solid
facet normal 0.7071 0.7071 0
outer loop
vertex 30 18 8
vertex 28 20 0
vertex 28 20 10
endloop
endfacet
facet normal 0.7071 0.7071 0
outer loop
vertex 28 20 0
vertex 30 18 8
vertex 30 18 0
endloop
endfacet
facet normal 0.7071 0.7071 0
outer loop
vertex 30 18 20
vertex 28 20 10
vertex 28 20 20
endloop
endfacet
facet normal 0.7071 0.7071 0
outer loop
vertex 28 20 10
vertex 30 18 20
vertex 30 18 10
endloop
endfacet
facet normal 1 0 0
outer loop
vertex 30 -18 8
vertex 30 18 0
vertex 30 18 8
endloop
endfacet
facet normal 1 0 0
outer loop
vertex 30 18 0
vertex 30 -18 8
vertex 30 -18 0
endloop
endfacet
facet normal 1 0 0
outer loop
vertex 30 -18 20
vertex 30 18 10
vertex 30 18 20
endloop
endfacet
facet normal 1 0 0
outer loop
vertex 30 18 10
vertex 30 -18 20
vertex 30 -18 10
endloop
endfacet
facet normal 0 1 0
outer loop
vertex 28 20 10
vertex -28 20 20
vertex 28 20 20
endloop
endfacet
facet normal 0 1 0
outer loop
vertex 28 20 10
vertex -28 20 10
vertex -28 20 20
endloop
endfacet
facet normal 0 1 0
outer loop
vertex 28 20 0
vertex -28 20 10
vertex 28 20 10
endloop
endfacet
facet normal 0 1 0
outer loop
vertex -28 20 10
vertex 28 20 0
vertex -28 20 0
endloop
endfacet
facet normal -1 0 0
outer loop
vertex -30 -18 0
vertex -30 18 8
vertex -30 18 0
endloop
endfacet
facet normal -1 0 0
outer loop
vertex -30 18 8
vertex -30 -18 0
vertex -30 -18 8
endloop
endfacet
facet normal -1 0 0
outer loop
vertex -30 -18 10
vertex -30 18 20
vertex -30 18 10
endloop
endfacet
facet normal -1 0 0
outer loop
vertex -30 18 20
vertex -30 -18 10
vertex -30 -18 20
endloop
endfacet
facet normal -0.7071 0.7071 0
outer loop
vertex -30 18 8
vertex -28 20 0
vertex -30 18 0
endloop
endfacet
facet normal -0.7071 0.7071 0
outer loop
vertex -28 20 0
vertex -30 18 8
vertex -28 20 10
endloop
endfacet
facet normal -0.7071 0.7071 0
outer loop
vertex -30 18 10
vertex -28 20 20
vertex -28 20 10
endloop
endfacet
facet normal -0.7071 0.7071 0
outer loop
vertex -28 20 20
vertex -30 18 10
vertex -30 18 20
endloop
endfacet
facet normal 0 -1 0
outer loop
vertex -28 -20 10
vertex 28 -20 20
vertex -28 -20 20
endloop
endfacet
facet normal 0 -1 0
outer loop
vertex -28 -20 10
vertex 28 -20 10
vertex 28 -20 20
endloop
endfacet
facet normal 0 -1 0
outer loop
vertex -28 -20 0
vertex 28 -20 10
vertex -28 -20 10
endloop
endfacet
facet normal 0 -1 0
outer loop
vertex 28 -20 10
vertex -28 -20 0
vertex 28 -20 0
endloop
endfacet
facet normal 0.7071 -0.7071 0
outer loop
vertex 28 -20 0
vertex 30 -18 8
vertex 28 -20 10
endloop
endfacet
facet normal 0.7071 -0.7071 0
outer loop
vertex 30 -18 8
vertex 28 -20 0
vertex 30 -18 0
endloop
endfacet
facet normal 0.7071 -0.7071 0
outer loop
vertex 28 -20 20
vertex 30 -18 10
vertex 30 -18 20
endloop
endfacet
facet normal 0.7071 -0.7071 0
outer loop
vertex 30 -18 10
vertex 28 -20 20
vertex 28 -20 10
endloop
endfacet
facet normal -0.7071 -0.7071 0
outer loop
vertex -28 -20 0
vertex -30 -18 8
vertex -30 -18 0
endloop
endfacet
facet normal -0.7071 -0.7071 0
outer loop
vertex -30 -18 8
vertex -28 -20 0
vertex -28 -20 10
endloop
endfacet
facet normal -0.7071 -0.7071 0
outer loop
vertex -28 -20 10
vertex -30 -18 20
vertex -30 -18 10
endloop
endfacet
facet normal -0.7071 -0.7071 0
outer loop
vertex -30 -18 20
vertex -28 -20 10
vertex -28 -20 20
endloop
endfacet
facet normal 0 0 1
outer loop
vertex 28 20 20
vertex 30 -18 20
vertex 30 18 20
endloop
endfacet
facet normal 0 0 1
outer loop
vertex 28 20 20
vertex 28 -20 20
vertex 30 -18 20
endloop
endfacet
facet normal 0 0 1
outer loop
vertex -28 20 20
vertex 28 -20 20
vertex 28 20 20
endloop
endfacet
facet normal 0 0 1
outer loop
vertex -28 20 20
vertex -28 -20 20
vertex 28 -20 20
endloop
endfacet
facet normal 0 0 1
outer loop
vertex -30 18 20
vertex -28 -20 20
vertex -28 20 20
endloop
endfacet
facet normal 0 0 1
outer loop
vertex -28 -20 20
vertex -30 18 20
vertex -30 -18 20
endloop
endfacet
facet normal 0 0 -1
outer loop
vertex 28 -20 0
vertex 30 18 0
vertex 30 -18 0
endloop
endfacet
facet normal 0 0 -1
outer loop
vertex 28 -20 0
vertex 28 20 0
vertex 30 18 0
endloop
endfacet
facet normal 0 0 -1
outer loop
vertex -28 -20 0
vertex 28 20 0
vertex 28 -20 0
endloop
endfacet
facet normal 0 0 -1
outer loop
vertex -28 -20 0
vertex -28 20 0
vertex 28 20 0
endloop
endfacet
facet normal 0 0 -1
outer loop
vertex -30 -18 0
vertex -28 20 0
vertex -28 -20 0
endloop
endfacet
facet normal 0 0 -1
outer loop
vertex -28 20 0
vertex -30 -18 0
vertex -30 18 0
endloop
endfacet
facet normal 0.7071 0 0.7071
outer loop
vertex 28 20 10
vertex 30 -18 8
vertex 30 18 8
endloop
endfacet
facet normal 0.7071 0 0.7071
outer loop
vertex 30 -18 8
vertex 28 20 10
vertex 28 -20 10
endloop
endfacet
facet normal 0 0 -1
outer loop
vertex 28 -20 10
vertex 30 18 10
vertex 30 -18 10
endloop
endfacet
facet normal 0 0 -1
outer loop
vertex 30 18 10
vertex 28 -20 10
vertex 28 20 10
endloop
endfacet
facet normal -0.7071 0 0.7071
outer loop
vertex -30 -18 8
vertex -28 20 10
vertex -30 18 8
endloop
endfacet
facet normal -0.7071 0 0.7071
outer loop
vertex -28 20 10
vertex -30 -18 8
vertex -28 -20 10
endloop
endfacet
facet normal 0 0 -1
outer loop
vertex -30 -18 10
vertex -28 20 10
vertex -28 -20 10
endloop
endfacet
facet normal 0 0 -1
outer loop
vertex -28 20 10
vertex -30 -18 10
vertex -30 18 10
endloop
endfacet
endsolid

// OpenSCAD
/* doodle-meta {"version":1,"parameters":{"width":{"label":"Overall width","description":"Changes the body width along X","unit":"mm","feature":"body_width"},"depth":{"label":"Overall depth","description":"Changes the body depth along Y","unit":"mm","feature":"body_depth"},"height":{"label":"Overall height","description":"Changes the body height along Z","unit":"mm","feature":"body_height"},"chamfer_size":{"label":"Chamfer size","description":"Size of the 45-degree chamfer on all edges","unit":"mm","feature":"chamfer"}},"features":{"body_width":{"kind":"dimension","axis":"x","label":"Overall width"},"body_depth":{"kind":"dimension","axis":"y","label":"Overall depth"},"body_height":{"kind":"dimension","axis":"z","label":"Overall height"},"chamfer":{"kind":"region","label":"Edge Chamfers","min":[0,0,0],"max":[{"parameter":"width","scale":1,"offset":0},{"parameter":"depth","scale":1,"offset":0},{"parameter":"height","scale":1,"offset":0}]}}} */

// Parameters
width = 60.0;
depth = 40.0;
height = 20.0;
chamfer_size = 2.0;

// Derived constants
eps = 0.01;

// Module for a single chamfer cutter (a triangular prism)
// The prism is oriented such that its triangular cross-section is in the XY plane
// and it extends along Z.
// It cuts the corner at (x_sign * width/2, y_sign * depth/2).
module chamfer_cutter(x_sign, y_sign) {
    // Define the triangle vertices in the local XY plane relative to the corner
    // The corner is at (x_sign * width/2, y_sign * depth/2)
    // The cut removes material inside the triangle defined by:
    // (cx, cy), (cx - x_sign*chamfer_size, cy), (cx, cy - y_sign*chamfer_size)
    
    cx = x_sign * width / 2;
    cy = y_sign * depth / 2;
    
    // Points of the triangle
    p1 = [cx, cy];
    p2 = [cx - x_sign * chamfer_size, cy];
    p3 = [cx, cy - y_sign * chamfer_size];
    
    // Create the polygon and extrude it along Z
    // We need to extend the cutter beyond the block in Z to ensure clean cuts
    translate([0, 0, -eps])
    linear_extrude(height = height + 2*eps)
    polygon([p1, p2, p3]);
}

// Module for a chamfer cutter on a horizontal edge (parallel to X or Y)
// This creates a triangular prism oriented to cut a top or bottom edge.
// axis: 0 for X-axis edge, 1 for Y-axis edge
// sign: +1 or -1 indicating which side of the block the edge is on
module edge_chamfer(axis, sign) {
    // The chamfer is a triangular prism.
    // For an edge parallel to X (axis=0), the triangle is in the YZ plane.
    // For an edge parallel to Y (axis=1), the triangle is in the XZ plane.
    
    if (axis == 0) {
        // Edge parallel to X. Triangle in YZ plane.
        // Edge is at y = sign * depth/2, z = sign * height/2 (top/bottom)
        // Wait, sign determines top/bottom (Z) and front/back (Y).
        // Let's define the triangle vertices in YZ.
        // Corner is at (y=sign_y*depth/2, z=sign_z*height/2).
        // But here 'sign' is passed as +1 for top/front, -1 for bottom/back?
        // Let's simplify: we need to cut 4 top edges and 4 bottom edges.
        
        // Let's use a generic approach: create a cube and rotate it.
        // A 45 deg chamfer can be made by cutting a corner of a cube.
        
        // Let's stick to the previous logic but generalized.
        // We need to cut the corner defined by two faces.
        
        // For Top-Front edge (Y+, Z+):
        // Triangle in YZ plane at Y=depth/2, Z=height/2.
        // Vertices: (depth/2, height/2), (depth/2 - cs, height/2), (depth/2, height/2 - cs)
        
        // Let's implement specific cutters for the 8 horizontal edges.
    }
}

// Helper to cut a corner defined by two axes and signs
// axis1, axis2: 0=X, 1=Y, 2=Z
// s1, s2: +1 or -1
module corner_chamfer_3d(axis1, axis2, s1, s2) {
    // Determine the plane of the triangle and the extrusion axis
    // The extrusion axis is the one NOT in {axis1, axis2}
    ext_axis = 3 - axis1 - axis2; // 0+1+2=3
    
    // Define the triangle in the local 2D plane of axis1, axis2
    // The corner is at (s1 * dim1/2, s2 * dim2/2)
    // The triangle vertices are:
    // (c1, c2)
    // (c1 - s1*cs, c2)
    // (c1, c2 - s2*cs)
    
    dim1 = (axis1 == 0) ? width : (axis1 == 1) ? depth : height;
    dim2 = (axis2 == 0) ? width : (axis2 == 1) ? depth : height;
    ext_dim = (ext_axis == 0) ? width : (ext_axis == 1) ? depth : height;
    
    c1 = s1 * dim1 / 2;
    c2 = s2 * dim2 / 2;
    
    p1 = [c1, c2];
    p2 = [c1 - s1 * chamfer_size, c2];
    p3 = [c1, c2 - s2 * chamfer_size];
    
    // Create polygon in XY plane (local)
    // Then rotate to align with axis1, axis2
    // Then translate to center
    // Then extrude along ext_axis
    
    // Rotation logic:
    // If ext_axis is Z (2), no rotation needed (polygon is in XY).
    // If ext_axis is Y (1), rotate X by 90. Polygon in XZ -> Y extrusion? 
    //   Standard linear_extrude is along Z.
    //   If we want extrusion along Y, we rotate the object so Z becomes Y.
    //   rotate([90, 0, 0]) maps Z to -Y? No, Z to Y?
    //   Let's just use rotate_extrude or careful rotations.
    
    // Simpler: Create the prism in a standard orientation and rotate/translate.
    // Standard: Triangle in XY, extruded along Z.
    // We want: Triangle in Plane(axis1, axis2), extruded along ext_axis.
    
    // Let's map (axis1, axis2) to (X, Y) and ext_axis to Z.
    
    // Case 1: ext_axis = Z (2). axis1, axis2 are X, Y.
    //   No rotation.
    // Case 2: ext_axis = Y (1). axis1, axis2 are X, Z.
    //   We want triangle in XZ, extruded along Y.
    //   Create triangle in XY (local), extrude along Z (local).
    //   Rotate so local Z -> global Y. rotate([90, 0, 0])? 
    //   rotate([90,0,0]) maps Y->Z, Z->-Y. So extrusion along -Y.
    //   We need to handle signs carefully.
    
    // Let's use a different approach: Minkowski difference or just explicit cutters.
    // Given the complexity of generic rotation, let's write explicit cutters for the 12 edges.
    
    // 4 Vertical Edges (parallel to Z): Triangle in XY, extrude Z.
    // 4 Top Edges (parallel to X/Y): Triangle in YZ/XZ, extrude X/Y.
    // 4 Bottom Edges (parallel to X/Y): Triangle in YZ/XZ, extrude X/Y.
}

// Explicit Cutters

// 1. Vertical Edges (4)
// Already implemented in chamfer_cutter
module vertical_chamfers() {
    chamfer_cutter(1, 1);
    chamfer_cutter(-1, 1);
    chamfer_cutter(1, -1);
    chamfer_cutter(-1, -1);
}

// 2. Top Edges (4)
// Top-Front (Y+, Z+) -> Edge parallel to X. Triangle in YZ.
module top_front_chamfer() {
    // Triangle in YZ plane.
    // Corner at Y=depth/2, Z=height/2.
    // Vertices: (depth/2, height/2), (depth/2 - cs, height/2), (depth/2, height/2 - cs)
    // Extrude along X.
    // Create polygon in XY (local), rotate to YZ, extrude along Z (local) -> X (global).
    
    // Polygon in local XY:
    // p1 = [depth/2, height/2]
    // p2 = [depth/2 - cs, height/2]
    // p3 = [depth/2, height/2 - cs]
    
    // Rotate [90, 0, 0] maps local Y to global Z, local Z to global -Y?
    // Let's use rotate([0, 90, 0])?
    // rotate([0, 90, 0]) maps local X to global Z, local Z to global -X.
    
    // Let's just use linear_extrude and rotate.
    // We want the prism axis along X.
    // So we create the triangle in YZ, and extrude along X.
    // linear_extrude extrudes along Z.
    // So we create triangle in XY, extrude along Z, then rotate so Z->X.
    // rotate([0, 90, 0]) maps Z to -X.
    // So we need to mirror or adjust.
    
    // Let's define the triangle in the plane perpendicular to X.
    // The plane is YZ.
    // We can use `rotate([0, 90, 0])` to make the extrusion direction X.
    // But the triangle coordinates need to be in the plane perpendicular to the extrusion axis.
    
    // Let's try:
    // translate([0, 0, 0])
    // rotate([0, 90, 0])
    // linear_extrude(height=width+2*eps)
    // polygon(...)
    
    // If we rotate([0, 90, 0]), the local Z becomes global -X.
    // The local XY plane becomes global ZY plane?
    // Local X -> Global Z. Local Y -> Global Y.
    // So the polygon is in Global ZY.
    // We want the triangle in YZ.
    // So we define points in (Y, Z) coordinates?
    // If local X maps to Global Z, and local Y maps to Global Y.
    // Then point (x, y) in polygon becomes (y, x) in (Y, Z)?
    // Let's verify.
    // rotate([0, 90, 0]) * [x, y, z] = [z, y, -x].
    // So local (x, y, 0) -> global (0, y, -x).
    // So local X is Global -Z. Local Y is Global Y.
    // So polygon in local XY maps to Global YZ (with Z flipped).
    
    // We want triangle at Y=depth/2, Z=height/2.
    // Vertices in Global YZ:
    // (depth/2, height/2)
    // (depth/2 - cs, height/2)
    // (depth/2, height/2 - cs)
    
    // Map to Local XY:
    // Global Y = Local Y.
    // Global Z = -Local X.
    // So Local X = -Global Z.
    
    // p1: Y=depth/2, Z=height/2 -> Local ( -height/2, depth/2 )
    // p2: Y=depth/2-cs, Z=height/2 -> Local ( -height/2, depth/2-cs )
    // p3: Y=depth/2, Z=height/2-cs -> Local ( -(height/2-cs), depth/2 )
    
    // Extrude along Local Z (which is Global -X).
    // We need to cover the whole width.
    // Translate to center X.
    
    translate([width/2 + eps, 0, 0]) // Start from +X side?
    // If extrusion is along -X, we start at +X and go to -X.
    // So translate to +X end.
    
    rotate([0, 90, 0])
    translate([0, 0, -eps]) // Extend in local Z (global -X)
    linear_extrude(height = width + 2*eps)
    polygon([
        [-height/2, depth/2],
        [-height/2, depth/2 - chamfer_size],
        [-(height/2 - chamfer_size), depth/2]
    ]);
}

// Top-Back (Y-, Z+) -> Edge parallel to X.
module top_back_chamfer() {
    // Corner at Y=-depth/2, Z=height/2.
    // Vertices in Global YZ:
    // (-depth/2, height/2)
    // (-depth/2 + cs, height/2)
    // (-depth/2, height/2 - cs)
    
    // Map to Local XY (Local X = -Global Z, Local Y = Global Y)
    // p1: (-height/2, -depth/2)
    // p2: (-height/2, -depth/2 + cs)
    // p3: (-(height/2 - cs), -depth/2)
    
    translate([width/2 + eps, 0, 0])
    rotate([0, 90, 0])
    translate([0, 0, -eps])
    linear_extrude(height = width + 2*eps)
    polygon([
        [-height/2, -depth/2],
        [-height/2, -depth/2 + chamfer_size],
        [-(height/2 - chamfer_size), -depth/2]
    ]);
}

// Top-Right (X+, Z+) -> Edge parallel to Y.
module top_right_chamfer() {
    // Corner at X=width/2, Z=height/2.
    // Vertices in Global XZ:
    // (width/2, height/2)
    // (width/2 - cs, height/2)
    // (width/2, height/2 - cs)
    
    // Extrude along Y.
    // Rotate so Z->Y. rotate([90, 0, 0]) maps Z->-Y?
    // rotate([90, 0, 0]) * [x, y, z] = [x, -z, y].
    // Local Z -> Global Y.
    // Local X -> Global X. Local Y -> Global -Z.
    // So polygon in Local XY maps to Global X(-Z).
    // We want triangle in XZ.
    // Global X = Local X. Global Z = -Local Y.
    
    // p1: (width/2, height/2) -> Local (width/2, -height/2)
    // p2: (width/2 - cs, height/2) -> Local (width/2 - cs, -height/2)
    // p3: (width/2, height/2 - cs) -> Local (width/2, -(height/2 - cs))
    
    // Extrude along Local Z (Global Y).
    // Translate to +Y end.
    
    translate([0, depth/2 + eps, 0])
    rotate([90, 0, 0])
    translate([0, 0, -eps])
    linear_extrude(height = depth + 2*eps)
    polygon([
        [width/2, -height/2],
        [width/2 - chamfer_size, -height/2],
        [width/2, -(height/2 - chamfer_size)]
    ]);
}

// Top-Left (X-, Z+) -> Edge parallel to Y.
module top_left_chamfer() {
    // Corner at X=-width/2, Z=height/2.
    // Vertices in Global XZ:
    // (-width/2, height/2)
    // (-width/2 + cs, height/2)
    // (-width/2, height/2 - cs)
    
    // Map to Local XY (Local X = Global X, Local Y = -Global Z)
    // p1: (-width/2, -height/2)
    // p2: (-width/2 + cs, -height/2)
    // p3: (-width/2, -(height/2 - cs))
    
    translate([0, depth/2 + eps, 0])
    rotate([90, 0, 0])
    translate([0, 0, -eps])
    linear_extrude(height = depth + 2*eps)
    polygon([
        [-width/2, -height/2],
        [-width/2 + chamfer_size, -height/2],
        [-width/2, -(height/2 - chamfer_size)]
    ]);
}

// Bottom Edges (4)
// Bottom-Front (Y+, Z-)
module bottom_front_chamfer() {
    // Corner at Y=depth/2, Z=-height/2.
    // Vertices in Global YZ:
    // (depth/2, -height/2)
    // (depth/2 - cs, -height/2)
    // (depth/2, -height/2 + cs)
    
    // Map to Local XY (Local X = -Global Z, Local Y = Global Y)
    // p1: (height/2, depth/2)
    // p2: (height/2, depth/2 - cs)
    // p3: (height/2 - cs, depth/2)
    
    translate([width/2 + eps, 0, 0])
    rotate([0, 90, 0])
    translate([0, 0, -eps])
    linear_extrude(height = width + 2*eps)
    polygon([
        [height/2, depth/2],
        [height/2, depth/2 - chamfer_size],
        [height/2 - chamfer_size, depth/2]
    ]);
}

// Bottom-Back (Y-, Z-)
module bottom_back_chamfer() {
    // Corner at Y=-depth/2, Z=-height/2.
    // Vertices in Global YZ:
    // (-depth/2, -height/2)
    // (-depth/2 + cs, -height/2)
    // (-depth/2, -height/2 + cs)
    
    // Map to Local XY
    // p1: (height/2, -depth/2)
    // p2: (height/2, -depth/2 + cs)
    // p3: (height/2 - cs, -depth/2)
    
    translate([width/2 + eps, 0, 0])
    rotate([0, 90, 0])
    translate([0, 0, -eps])
    linear_extrude(height = width + 2*eps)
    polygon([
        [height/2, -depth/2],
        [height/2, -depth/2 + chamfer_size],
        [height/2 - chamfer_size, -depth/2]
    ]);
}

// Bottom-Right (X+, Z-)
module bottom_right_chamfer() {
    // Corner at X=width/2, Z=-height/2.
    // Vertices in Global XZ:
    // (width/2, -height/2)
    // (width/2 - cs, -height/2)
    // (width/2, -height/2 + cs)
    
    // Map to Local XY (Local X = Global X, Local Y = -Global Z)
    // p1: (width/2, height/2)
    // p2: (width/2 - cs, height/2)
    // p3: (width/2, height/2 - cs)
    
    translate([0, depth/2 + eps, 0])
    rotate([90, 0, 0])
    translate([0, 0, -eps])
    linear_extrude(height = depth + 2*eps)
    polygon([
        [width/2, height/2],
        [width/2 - chamfer_size, height/2],
        [width/2, height/2 - chamfer_size]
    ]);
}

// Bottom-Left (X-, Z-)
module bottom_left_chamfer() {
    // Corner at X=-width/2, Z=-height/2.
    // Vertices in Global XZ:
    // (-width/2, -height/2)
    // (-width/2 + cs, -height/2)
    // (-width/2, -height/2 + cs)
    
    // Map to Local XY
    // p1: (-width/2, height/2)
    // p2: (-width/2 + cs, height/2)
    // p3: (-width/2, height/2 - cs)
    
    translate([0, depth/2 + eps, 0])
    rotate([90, 0, 0])
    translate([0, 0, -eps])
    linear_extrude(height = depth + 2*eps)
    polygon([
        [-width/2, height/2],
        [-width/2 + chamfer_size, height/2],
        [-width/2, height/2 - chamfer_size]
    ]);
}

// Main design
difference() {
    // Base block
    translate([0, 0, height/2])
    cube([width, depth, height], center=true);
    
    // Subtract all 12 chamfers
    vertical_chamfers();
    
    top_front_chamfer();
    top_back_chamfer();
    top_right_chamfer();
    top_left_chamfer();
    
    bottom_front_chamfer();
    bottom_back_chamfer();
    bottom_right_chamfer();
    bottom_left_chamfer();
}
